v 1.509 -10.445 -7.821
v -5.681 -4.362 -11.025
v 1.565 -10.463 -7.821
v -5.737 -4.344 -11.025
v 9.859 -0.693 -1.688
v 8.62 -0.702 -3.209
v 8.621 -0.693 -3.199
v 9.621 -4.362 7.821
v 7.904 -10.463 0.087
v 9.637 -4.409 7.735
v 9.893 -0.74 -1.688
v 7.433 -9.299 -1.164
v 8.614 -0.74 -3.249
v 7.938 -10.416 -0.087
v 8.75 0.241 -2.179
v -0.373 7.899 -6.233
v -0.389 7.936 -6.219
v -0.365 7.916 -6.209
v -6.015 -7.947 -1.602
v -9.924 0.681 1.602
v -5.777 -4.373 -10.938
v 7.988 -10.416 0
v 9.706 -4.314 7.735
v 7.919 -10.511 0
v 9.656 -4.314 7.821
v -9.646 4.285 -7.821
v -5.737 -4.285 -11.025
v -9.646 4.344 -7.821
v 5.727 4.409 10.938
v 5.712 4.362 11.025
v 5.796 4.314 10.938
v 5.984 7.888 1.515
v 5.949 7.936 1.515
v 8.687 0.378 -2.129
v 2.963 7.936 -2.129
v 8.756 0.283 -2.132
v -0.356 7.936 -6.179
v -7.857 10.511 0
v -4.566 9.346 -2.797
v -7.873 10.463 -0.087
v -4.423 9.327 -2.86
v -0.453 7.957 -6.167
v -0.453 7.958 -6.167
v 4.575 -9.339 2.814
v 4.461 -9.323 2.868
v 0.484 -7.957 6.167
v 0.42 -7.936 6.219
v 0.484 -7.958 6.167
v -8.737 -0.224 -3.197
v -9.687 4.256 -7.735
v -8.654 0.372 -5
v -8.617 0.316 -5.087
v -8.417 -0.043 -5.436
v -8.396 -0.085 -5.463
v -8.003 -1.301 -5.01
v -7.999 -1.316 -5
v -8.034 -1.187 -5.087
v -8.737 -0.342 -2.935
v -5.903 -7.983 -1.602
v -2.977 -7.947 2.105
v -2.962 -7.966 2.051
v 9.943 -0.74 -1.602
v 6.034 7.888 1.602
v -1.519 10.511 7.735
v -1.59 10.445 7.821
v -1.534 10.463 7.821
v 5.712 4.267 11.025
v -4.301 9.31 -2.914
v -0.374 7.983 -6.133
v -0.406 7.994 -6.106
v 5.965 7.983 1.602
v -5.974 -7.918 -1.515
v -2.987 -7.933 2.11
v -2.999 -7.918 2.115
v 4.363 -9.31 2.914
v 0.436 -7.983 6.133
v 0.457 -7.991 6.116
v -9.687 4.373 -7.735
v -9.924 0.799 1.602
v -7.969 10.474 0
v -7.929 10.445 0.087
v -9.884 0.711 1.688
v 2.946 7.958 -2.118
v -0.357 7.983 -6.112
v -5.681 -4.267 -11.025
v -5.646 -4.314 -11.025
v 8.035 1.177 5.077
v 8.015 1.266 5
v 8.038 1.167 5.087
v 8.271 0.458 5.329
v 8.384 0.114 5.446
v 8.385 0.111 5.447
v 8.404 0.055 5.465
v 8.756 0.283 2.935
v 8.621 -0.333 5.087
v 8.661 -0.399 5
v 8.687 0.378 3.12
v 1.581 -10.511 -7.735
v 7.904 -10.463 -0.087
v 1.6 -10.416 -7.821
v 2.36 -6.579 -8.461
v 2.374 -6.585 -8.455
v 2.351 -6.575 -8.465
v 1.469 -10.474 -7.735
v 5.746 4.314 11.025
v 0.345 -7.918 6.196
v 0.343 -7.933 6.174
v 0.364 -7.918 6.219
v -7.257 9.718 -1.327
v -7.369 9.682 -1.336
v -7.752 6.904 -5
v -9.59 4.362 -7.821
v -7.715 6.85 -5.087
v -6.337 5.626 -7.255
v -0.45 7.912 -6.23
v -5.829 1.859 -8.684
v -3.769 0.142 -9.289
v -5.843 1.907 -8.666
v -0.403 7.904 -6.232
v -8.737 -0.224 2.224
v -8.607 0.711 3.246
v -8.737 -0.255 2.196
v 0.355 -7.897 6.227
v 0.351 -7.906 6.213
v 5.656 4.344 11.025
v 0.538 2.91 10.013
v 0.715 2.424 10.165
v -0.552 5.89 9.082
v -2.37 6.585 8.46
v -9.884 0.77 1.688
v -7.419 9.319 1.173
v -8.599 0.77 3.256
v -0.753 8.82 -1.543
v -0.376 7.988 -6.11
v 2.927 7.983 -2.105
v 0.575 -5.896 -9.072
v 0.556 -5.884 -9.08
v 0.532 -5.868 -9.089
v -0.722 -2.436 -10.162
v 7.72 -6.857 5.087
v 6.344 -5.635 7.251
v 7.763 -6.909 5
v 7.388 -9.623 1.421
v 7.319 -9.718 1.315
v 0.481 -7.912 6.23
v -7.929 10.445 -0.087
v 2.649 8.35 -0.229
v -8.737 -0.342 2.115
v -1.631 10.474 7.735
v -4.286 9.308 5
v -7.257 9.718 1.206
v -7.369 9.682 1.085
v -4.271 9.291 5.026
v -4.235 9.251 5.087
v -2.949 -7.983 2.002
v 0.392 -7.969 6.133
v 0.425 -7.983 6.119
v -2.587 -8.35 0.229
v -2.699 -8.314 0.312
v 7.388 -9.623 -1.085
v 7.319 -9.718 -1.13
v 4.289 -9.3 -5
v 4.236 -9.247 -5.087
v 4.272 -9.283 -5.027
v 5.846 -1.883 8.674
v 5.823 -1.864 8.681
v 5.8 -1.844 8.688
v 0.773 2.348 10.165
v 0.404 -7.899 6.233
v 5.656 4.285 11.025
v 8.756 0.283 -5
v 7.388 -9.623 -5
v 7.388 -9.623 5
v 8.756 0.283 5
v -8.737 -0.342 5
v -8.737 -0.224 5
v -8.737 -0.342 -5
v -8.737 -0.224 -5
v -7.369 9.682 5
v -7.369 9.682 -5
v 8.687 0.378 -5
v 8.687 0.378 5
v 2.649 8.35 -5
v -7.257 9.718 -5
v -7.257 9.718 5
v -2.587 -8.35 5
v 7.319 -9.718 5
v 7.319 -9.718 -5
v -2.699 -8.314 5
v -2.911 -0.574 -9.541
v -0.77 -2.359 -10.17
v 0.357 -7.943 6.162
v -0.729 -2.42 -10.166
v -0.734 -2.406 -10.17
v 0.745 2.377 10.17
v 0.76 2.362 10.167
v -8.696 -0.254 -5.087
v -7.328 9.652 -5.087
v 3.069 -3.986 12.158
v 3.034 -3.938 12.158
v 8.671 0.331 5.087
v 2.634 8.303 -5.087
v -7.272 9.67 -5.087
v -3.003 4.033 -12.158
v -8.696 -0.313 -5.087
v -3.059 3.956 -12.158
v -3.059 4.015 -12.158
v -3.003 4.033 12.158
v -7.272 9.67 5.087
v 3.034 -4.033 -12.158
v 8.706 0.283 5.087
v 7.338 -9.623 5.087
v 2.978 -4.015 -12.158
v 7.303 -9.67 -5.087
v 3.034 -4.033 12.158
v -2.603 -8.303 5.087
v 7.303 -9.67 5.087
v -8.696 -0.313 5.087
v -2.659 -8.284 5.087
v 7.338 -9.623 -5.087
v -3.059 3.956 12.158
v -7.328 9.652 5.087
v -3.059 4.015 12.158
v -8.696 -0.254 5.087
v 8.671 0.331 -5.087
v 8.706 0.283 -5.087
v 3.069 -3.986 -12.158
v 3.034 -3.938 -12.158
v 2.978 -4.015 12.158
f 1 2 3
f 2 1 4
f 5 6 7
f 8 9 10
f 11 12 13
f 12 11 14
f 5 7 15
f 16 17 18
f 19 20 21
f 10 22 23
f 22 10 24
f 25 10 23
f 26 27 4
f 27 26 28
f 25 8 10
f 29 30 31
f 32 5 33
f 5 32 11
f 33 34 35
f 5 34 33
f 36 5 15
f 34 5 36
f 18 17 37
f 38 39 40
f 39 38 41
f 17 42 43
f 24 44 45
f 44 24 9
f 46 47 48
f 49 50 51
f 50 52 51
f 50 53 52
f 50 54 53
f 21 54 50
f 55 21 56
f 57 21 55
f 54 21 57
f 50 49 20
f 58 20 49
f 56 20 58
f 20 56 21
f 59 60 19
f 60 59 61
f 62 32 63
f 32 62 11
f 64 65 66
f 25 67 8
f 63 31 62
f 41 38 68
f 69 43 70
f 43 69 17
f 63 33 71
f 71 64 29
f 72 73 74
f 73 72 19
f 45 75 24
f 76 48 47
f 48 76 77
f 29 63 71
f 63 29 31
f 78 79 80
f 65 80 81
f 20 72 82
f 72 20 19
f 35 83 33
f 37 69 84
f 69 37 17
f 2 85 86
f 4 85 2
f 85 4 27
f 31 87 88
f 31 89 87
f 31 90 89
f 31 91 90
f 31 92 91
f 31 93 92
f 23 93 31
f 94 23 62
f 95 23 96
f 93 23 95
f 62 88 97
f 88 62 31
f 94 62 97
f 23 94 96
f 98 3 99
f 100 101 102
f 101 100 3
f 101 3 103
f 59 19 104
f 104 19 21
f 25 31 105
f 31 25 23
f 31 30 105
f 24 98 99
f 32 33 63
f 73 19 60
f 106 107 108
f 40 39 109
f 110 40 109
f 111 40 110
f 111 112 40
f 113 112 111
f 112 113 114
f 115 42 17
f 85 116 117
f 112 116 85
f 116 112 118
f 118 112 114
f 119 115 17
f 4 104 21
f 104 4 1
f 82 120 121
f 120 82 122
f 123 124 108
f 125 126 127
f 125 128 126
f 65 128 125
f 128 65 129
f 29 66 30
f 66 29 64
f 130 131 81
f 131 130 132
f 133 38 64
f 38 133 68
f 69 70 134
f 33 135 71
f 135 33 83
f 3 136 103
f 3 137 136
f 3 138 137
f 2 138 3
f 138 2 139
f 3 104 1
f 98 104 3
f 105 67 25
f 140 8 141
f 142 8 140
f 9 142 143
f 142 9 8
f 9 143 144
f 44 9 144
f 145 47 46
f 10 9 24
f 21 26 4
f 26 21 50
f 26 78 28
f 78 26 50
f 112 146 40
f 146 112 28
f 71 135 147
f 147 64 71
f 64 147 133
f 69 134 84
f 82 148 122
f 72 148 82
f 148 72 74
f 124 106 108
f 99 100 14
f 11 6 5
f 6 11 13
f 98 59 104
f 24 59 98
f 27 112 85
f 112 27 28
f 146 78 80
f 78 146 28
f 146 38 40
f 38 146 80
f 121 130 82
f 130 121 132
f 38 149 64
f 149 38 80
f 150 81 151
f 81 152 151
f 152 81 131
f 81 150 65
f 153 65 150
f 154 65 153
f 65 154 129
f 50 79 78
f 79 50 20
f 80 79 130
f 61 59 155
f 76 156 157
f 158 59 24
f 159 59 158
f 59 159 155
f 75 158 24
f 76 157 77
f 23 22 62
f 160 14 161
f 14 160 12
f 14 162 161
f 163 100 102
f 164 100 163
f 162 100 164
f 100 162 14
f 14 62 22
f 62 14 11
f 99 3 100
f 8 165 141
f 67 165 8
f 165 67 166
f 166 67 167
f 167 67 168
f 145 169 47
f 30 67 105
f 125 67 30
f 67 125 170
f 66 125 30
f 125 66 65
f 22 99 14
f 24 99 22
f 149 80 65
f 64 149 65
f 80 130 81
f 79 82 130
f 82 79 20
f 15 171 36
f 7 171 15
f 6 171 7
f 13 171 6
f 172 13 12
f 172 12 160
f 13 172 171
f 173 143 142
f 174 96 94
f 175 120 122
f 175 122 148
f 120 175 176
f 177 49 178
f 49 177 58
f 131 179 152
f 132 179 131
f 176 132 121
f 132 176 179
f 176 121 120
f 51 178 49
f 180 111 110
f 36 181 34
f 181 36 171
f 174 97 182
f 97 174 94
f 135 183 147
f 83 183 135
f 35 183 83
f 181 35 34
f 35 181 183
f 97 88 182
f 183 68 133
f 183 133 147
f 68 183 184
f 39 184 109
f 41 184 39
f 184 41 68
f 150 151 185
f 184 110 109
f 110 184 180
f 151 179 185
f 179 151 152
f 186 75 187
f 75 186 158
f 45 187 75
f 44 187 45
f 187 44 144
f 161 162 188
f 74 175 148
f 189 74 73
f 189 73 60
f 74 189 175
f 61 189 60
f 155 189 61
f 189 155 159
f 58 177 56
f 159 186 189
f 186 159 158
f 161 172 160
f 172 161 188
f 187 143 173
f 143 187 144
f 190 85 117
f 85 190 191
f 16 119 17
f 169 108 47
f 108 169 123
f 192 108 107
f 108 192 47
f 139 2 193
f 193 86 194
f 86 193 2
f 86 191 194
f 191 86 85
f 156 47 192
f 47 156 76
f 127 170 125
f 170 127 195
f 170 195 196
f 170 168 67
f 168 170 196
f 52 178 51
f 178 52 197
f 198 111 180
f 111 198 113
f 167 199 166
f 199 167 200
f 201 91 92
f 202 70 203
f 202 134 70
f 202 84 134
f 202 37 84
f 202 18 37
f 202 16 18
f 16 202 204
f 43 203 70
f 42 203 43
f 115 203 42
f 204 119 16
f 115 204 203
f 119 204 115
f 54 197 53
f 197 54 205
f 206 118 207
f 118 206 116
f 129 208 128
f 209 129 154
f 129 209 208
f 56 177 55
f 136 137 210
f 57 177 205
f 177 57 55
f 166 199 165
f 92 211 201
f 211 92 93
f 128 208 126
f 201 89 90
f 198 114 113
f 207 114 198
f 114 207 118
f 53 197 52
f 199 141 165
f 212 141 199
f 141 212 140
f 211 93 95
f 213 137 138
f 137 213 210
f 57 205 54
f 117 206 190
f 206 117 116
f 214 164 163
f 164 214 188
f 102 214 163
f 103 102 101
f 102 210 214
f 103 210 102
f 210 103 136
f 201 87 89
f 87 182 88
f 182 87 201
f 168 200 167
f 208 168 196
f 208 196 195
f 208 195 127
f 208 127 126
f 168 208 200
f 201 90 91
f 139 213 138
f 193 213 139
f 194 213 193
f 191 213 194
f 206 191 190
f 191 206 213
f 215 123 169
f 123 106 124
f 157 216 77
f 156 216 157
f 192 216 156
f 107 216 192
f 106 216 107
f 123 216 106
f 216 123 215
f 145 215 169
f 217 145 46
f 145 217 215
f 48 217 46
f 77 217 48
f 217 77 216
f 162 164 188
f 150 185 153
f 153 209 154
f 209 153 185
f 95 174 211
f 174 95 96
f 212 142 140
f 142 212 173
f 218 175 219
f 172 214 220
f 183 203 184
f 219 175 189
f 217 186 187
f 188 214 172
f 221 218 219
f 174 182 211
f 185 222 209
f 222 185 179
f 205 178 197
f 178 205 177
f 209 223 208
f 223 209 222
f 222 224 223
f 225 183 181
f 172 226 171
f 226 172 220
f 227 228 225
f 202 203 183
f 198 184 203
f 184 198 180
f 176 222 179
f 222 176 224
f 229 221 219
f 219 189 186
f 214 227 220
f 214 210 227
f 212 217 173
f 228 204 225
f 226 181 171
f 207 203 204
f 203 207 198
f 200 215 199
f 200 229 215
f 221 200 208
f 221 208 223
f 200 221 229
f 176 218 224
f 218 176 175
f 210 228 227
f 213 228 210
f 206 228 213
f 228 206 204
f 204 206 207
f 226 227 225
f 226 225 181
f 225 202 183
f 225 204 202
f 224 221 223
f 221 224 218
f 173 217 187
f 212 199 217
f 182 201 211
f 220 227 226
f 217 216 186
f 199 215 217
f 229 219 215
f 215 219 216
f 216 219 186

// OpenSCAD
// Auto-generated OpenSCAD file

    inner_points = 10*[[0.7287883694352655, -0.9622755809862549, 0.4999999999999998], [0.728788369435265, -0.9622755809862551, -0.5000000000000002], [-0.728788369435265, 0.9622755809862551, 0.5000000000000002], [-0.7287883694352655, 0.9622755809862549, -0.4999999999999998], [0.30187402671986113, -0.3985875963849562, 1.2071067811865475], [0.3018740267198599, -0.39858759638495667, -1.2071067811865475], [-0.3018740267198599, 0.39858759638495667, 1.2071067811865475], [-0.30187402671986113, 0.3985875963849562, -1.2071067811865475], [-0.26181395788143796, -0.8255019391003613, 0.5000000000000002], [0.8655620113211595, 0.02832674633044846, 0.49999999999999956], [-0.2618139578814384, -0.8255019391003613, -0.4999999999999998], [0.8655620113211591, 0.028326746330448405, -0.5000000000000004], [-0.8655620113211591, -0.028326746330448405, 0.5000000000000004], [0.2618139578814384, 0.8255019391003613, 0.4999999999999998], [-0.8655620113211595, -0.02832674633044846, -0.49999999999999956], [0.26181395788143796, 0.8255019391003613, -0.5000000000000002]];

    outer_points = 10*[[-0.5696478499849842, -0.4314281054603697, -1.093836321399554], [-0.960592326979208, 0.4314281054603697, -0.7734590825338425], [0.960592326979208, -0.4314281054603697, 0.7734590825338425], [0.5696478499849842, 0.4314281054603697, 1.093836321399554], [0.1549886117537691, -1.0415595833913545, -0.7734590782057024], [-0.7888348467405426, 1.0415595833913545, -3.0604573320047734e-09], [0.7888348467405426, -1.0415595833913545, 3.0604573320047734e-09], [-0.1549886117537691, 1.0415595833913545, 0.7734590782057024], [-0.5933626113683385, -0.7888348480349219, -0.16018861993246514], [0.3504608533757889, -0.07402136288581751, -0.9336477001994059], [-0.9843070883625624, 0.07402136288581751, 0.1601886189332462], [-0.04048362361843505, 0.7888348480349219, -0.6132704613336946], [0.04048362361843505, -0.7888348480349219, 0.6132704613336946], [0.9843070883625624, -0.07402136288581751, -0.1601886189332462], [-0.3504608533757889, 0.07402136288581751, 0.9336477001994059], [0.5933626113683385, 0.7888348480349219, 0.16018861993246514]];

    // Convex hull for inner set (I)
    module inner_hull() {
        hull() {
            for (p = inner_points) {
                translate(p) sphere(r=0.1);
            }
        }
    }

    // Convex hull for outer set (O) minus inner hull (O \ I)
    module outer_minus_inner() {
        difference() {
            hull() {
                for (p = outer_points) {
                    translate(p) sphere(r=0.1);
                }
            }
            inner_hull(); // Subtract inner hull
        }
    }

    // Convex hull for outer set (O) minus all translated inner hulls
    module outer_minus_AllTranslationInner() {
        difference() {
            hull() {
                for (p = outer_points) {
                    translate(p) sphere(r=0.1);
                }
            }
            hull() {
                translate([0,0,50]) inner_hull();
                translate([0,0,-50]) inner_hull();
            }; // Subtract translated inner hulls
        }
    }

    // Difference between outer_minus_inner and outer_minus_AllTranslationInner
    module outer_minus_inner_diff() {
        difference() {
            // Outer minus inner
            difference() {
                hull() {
                    for (p = outer_points) {
                        translate(p) sphere(r=0.1);
                    }
                }
                inner_hull();
            }

            // Subtract Outer minus AllTranslationInner
            difference() {
                hull() {
                    for (p = outer_points) {
                        translate(p) sphere(r=0.1);
                    }
                }
                hull() {
                    translate([0,0,50]) inner_hull();
                    translate([0,0,-50]) inner_hull();
                };
            }
        }
    }

    // Rendering all with colors applied
    color([1, 0, 0, 0.5]) inner_hull(); // Transparent red
    color([0, 1, 0, 1]) outer_minus_AllTranslationInner(); // Opaque green
    color([1, 1, 0, 1]) outer_minus_inner_diff(); // Opaque yellow
    
